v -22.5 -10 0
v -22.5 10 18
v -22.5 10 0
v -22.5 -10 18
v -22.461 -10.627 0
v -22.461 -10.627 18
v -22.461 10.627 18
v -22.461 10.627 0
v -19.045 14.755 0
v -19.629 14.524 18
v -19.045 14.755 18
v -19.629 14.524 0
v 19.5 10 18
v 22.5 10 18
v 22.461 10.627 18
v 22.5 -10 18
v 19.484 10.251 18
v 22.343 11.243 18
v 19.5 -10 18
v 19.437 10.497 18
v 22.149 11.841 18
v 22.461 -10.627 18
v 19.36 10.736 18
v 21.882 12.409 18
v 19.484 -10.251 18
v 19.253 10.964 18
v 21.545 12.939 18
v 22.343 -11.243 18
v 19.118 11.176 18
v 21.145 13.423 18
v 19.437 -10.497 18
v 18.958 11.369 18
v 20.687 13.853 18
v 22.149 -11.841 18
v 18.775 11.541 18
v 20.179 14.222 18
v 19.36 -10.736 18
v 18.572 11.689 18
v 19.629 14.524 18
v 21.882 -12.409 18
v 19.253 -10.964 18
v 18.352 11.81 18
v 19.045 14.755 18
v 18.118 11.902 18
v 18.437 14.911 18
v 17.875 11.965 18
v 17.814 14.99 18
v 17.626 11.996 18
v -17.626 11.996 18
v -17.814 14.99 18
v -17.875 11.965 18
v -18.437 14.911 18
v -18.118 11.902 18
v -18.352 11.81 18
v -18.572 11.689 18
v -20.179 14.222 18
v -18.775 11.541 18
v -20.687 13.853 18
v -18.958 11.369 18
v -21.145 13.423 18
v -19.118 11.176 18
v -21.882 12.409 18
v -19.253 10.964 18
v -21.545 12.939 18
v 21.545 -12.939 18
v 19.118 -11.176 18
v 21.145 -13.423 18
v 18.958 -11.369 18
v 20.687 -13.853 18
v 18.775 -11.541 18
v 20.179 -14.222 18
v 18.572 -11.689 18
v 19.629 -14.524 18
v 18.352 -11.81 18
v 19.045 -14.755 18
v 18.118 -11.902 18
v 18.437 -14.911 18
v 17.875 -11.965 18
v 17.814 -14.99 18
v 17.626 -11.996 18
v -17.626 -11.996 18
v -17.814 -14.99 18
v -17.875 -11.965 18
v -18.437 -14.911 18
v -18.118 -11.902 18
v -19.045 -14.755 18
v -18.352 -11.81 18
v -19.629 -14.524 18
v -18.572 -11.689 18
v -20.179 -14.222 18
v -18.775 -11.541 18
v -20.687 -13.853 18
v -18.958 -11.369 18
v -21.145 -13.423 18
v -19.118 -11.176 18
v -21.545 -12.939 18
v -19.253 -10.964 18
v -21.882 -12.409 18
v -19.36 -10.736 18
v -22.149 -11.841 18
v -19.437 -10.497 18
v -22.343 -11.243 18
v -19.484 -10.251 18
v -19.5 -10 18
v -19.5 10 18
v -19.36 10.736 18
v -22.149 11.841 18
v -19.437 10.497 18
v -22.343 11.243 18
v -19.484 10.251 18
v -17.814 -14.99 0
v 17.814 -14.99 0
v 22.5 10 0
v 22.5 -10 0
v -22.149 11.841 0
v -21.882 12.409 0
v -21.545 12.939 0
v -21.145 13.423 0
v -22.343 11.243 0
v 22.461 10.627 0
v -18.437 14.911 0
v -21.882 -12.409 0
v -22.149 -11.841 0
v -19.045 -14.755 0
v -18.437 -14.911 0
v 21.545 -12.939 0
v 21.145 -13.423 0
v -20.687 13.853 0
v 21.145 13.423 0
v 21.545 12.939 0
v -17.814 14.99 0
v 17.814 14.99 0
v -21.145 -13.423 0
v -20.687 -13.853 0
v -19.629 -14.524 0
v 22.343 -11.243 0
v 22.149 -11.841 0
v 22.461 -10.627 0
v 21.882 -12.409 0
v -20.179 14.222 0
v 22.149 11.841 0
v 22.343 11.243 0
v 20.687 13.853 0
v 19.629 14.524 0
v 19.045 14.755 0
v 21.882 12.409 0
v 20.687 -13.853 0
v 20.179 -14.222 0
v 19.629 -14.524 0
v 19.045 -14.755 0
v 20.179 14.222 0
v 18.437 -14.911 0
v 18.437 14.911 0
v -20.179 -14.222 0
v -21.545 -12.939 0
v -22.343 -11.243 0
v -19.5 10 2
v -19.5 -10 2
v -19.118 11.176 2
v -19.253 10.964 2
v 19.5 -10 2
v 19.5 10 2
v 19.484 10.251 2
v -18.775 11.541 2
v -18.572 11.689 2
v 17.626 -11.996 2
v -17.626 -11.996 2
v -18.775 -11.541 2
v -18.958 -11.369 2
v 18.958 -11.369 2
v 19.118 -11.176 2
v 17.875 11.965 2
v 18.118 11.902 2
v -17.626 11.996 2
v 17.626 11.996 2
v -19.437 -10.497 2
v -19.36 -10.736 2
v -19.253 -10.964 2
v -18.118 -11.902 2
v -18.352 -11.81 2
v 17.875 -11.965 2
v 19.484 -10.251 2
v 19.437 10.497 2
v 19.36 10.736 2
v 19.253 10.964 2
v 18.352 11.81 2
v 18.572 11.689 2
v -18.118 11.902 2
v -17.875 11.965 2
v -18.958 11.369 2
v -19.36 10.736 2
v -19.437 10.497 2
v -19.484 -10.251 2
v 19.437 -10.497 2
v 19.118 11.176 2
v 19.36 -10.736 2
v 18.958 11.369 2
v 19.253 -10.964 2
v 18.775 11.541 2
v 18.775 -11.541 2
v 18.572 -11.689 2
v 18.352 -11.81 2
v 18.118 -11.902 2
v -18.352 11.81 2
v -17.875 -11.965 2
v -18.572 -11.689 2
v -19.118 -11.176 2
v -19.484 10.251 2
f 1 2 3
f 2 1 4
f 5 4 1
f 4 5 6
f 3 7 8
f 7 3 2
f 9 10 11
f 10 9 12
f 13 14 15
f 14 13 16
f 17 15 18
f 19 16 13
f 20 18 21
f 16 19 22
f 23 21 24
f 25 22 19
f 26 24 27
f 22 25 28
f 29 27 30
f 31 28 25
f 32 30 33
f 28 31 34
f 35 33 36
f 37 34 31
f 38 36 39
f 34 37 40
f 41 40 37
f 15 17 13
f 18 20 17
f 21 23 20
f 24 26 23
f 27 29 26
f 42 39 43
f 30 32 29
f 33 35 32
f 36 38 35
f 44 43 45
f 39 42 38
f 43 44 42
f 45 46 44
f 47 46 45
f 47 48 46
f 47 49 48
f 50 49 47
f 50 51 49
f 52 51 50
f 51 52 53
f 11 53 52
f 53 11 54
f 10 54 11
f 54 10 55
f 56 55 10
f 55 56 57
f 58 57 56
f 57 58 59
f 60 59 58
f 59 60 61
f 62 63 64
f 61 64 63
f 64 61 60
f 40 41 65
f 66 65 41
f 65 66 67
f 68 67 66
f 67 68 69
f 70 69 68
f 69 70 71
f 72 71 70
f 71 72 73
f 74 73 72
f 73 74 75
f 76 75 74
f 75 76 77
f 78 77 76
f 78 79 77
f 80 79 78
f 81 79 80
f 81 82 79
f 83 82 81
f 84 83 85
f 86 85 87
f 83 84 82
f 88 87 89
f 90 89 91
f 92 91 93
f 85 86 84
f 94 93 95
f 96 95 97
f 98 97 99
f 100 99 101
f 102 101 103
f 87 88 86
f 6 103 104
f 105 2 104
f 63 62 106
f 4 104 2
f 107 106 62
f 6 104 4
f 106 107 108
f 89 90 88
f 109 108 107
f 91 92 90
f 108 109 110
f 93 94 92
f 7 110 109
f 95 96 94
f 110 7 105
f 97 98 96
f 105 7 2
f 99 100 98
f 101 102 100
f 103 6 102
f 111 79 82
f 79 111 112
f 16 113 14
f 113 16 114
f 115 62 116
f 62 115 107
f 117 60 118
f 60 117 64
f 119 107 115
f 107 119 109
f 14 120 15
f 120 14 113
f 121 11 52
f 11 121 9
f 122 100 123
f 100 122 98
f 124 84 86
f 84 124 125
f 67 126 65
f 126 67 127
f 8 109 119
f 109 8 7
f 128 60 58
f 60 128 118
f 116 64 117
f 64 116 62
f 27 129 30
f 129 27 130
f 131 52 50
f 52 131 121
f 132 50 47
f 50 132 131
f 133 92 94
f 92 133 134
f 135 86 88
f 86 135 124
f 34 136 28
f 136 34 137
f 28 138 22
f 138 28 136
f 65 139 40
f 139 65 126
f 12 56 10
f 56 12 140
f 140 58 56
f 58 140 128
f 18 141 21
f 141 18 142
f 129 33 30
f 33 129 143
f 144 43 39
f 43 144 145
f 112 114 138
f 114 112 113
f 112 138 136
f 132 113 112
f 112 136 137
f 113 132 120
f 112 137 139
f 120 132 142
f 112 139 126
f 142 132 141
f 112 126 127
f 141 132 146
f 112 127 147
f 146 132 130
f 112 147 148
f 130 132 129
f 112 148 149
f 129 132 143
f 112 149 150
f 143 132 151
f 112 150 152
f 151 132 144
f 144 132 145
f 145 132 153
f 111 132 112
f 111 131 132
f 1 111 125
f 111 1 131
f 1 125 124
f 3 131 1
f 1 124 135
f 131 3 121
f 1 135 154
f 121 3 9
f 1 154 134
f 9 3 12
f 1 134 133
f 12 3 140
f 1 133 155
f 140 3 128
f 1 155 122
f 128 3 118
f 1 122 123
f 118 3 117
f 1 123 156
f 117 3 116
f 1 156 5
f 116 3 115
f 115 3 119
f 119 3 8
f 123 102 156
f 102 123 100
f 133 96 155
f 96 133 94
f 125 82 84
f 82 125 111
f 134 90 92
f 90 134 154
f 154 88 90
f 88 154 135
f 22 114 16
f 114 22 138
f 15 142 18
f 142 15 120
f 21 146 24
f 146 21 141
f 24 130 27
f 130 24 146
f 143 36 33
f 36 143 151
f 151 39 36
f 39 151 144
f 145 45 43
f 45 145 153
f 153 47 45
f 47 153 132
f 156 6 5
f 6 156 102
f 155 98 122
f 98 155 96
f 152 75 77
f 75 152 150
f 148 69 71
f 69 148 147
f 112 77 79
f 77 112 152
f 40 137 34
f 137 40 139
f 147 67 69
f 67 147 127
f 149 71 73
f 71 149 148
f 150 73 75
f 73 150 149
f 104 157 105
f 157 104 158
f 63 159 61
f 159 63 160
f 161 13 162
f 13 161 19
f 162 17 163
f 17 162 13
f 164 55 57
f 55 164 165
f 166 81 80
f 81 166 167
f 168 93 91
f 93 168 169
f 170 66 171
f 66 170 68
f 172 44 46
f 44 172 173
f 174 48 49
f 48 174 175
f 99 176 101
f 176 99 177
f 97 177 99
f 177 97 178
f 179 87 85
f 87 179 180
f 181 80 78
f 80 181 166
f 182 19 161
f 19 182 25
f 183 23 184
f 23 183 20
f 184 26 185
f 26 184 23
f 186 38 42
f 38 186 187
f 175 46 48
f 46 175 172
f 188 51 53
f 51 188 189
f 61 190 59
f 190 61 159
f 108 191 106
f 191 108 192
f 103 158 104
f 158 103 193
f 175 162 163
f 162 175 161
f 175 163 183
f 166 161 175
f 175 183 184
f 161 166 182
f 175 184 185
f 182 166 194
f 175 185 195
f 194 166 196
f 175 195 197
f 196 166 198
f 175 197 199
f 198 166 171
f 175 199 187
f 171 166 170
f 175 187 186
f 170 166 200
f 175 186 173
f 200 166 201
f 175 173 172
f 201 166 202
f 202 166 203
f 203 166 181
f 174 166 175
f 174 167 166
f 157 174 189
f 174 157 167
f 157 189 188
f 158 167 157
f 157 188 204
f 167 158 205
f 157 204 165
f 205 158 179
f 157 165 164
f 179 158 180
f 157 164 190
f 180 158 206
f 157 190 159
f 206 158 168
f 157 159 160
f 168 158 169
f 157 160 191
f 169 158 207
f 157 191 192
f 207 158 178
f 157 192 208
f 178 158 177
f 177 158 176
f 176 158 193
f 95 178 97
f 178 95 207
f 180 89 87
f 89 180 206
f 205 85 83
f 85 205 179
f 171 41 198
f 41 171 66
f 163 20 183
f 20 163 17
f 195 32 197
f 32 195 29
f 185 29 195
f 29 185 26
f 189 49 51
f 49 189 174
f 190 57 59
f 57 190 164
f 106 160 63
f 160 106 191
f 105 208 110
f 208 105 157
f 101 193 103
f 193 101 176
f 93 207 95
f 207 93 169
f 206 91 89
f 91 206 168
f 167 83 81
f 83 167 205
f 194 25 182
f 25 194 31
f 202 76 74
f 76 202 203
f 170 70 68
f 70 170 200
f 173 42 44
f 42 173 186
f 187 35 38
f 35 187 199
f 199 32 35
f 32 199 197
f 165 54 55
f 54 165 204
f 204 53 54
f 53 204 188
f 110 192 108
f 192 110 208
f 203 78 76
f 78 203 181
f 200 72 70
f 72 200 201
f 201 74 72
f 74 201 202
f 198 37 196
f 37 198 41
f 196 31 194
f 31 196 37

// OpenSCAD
$fn = 50;


difference() {
	union() {
		hull() {
			translate(v = [-17.5000000000, 10.0000000000, 0]) {
				cylinder(h = 18, r = 5);
			}
			translate(v = [17.5000000000, 10.0000000000, 0]) {
				cylinder(h = 18, r = 5);
			}
			translate(v = [-17.5000000000, -10.0000000000, 0]) {
				cylinder(h = 18, r = 5);
			}
			translate(v = [17.5000000000, -10.0000000000, 0]) {
				cylinder(h = 18, r = 5);
			}
		}
	}
	union() {
		translate(v = [0, 0, 2]) {
			#hull() {
				translate(v = [-17.5000000000, 10.0000000000, 0]) {
					cylinder(h = 16, r = 2);
				}
				translate(v = [17.5000000000, 10.0000000000, 0]) {
					cylinder(h = 16, r = 2);
				}
				translate(v = [-17.5000000000, -10.0000000000, 0]) {
					cylinder(h = 16, r = 2);
				}
				translate(v = [17.5000000000, -10.0000000000, 0]) {
					cylinder(h = 16, r = 2);
				}
			}
		}
	}
}
